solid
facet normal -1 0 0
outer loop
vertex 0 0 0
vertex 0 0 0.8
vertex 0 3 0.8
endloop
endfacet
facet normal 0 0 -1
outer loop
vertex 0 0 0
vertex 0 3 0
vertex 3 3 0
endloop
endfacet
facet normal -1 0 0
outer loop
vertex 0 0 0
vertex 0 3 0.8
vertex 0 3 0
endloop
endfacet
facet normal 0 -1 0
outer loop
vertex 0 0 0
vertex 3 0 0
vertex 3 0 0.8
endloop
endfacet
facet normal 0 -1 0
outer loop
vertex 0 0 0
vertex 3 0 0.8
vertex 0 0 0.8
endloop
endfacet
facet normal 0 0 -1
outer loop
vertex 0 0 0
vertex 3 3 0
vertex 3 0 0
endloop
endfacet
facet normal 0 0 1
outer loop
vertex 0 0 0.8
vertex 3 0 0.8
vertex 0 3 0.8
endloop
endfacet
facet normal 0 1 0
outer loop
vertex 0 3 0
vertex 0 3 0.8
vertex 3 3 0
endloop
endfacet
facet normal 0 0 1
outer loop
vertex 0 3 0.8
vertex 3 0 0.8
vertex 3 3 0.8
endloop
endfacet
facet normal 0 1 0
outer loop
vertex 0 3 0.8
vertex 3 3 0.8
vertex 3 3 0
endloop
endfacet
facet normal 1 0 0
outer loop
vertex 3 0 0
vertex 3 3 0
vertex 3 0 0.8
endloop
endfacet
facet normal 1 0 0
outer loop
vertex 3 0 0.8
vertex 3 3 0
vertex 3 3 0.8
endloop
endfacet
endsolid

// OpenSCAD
/* Warning, this is a very basic generator with a lot of approximation 
input data : [WQFN, NGA, 3x3x0.8mm, 16, , A, C04-00440A]
generated by com.zoubworld.electronics.cad.model3d.Basic
Date : Sun Feb 15 10:50:48 CET 2026
*/

//body
color("black")
translate([0,0,0])
cube([3.0,3.0,0.8], center=false);
